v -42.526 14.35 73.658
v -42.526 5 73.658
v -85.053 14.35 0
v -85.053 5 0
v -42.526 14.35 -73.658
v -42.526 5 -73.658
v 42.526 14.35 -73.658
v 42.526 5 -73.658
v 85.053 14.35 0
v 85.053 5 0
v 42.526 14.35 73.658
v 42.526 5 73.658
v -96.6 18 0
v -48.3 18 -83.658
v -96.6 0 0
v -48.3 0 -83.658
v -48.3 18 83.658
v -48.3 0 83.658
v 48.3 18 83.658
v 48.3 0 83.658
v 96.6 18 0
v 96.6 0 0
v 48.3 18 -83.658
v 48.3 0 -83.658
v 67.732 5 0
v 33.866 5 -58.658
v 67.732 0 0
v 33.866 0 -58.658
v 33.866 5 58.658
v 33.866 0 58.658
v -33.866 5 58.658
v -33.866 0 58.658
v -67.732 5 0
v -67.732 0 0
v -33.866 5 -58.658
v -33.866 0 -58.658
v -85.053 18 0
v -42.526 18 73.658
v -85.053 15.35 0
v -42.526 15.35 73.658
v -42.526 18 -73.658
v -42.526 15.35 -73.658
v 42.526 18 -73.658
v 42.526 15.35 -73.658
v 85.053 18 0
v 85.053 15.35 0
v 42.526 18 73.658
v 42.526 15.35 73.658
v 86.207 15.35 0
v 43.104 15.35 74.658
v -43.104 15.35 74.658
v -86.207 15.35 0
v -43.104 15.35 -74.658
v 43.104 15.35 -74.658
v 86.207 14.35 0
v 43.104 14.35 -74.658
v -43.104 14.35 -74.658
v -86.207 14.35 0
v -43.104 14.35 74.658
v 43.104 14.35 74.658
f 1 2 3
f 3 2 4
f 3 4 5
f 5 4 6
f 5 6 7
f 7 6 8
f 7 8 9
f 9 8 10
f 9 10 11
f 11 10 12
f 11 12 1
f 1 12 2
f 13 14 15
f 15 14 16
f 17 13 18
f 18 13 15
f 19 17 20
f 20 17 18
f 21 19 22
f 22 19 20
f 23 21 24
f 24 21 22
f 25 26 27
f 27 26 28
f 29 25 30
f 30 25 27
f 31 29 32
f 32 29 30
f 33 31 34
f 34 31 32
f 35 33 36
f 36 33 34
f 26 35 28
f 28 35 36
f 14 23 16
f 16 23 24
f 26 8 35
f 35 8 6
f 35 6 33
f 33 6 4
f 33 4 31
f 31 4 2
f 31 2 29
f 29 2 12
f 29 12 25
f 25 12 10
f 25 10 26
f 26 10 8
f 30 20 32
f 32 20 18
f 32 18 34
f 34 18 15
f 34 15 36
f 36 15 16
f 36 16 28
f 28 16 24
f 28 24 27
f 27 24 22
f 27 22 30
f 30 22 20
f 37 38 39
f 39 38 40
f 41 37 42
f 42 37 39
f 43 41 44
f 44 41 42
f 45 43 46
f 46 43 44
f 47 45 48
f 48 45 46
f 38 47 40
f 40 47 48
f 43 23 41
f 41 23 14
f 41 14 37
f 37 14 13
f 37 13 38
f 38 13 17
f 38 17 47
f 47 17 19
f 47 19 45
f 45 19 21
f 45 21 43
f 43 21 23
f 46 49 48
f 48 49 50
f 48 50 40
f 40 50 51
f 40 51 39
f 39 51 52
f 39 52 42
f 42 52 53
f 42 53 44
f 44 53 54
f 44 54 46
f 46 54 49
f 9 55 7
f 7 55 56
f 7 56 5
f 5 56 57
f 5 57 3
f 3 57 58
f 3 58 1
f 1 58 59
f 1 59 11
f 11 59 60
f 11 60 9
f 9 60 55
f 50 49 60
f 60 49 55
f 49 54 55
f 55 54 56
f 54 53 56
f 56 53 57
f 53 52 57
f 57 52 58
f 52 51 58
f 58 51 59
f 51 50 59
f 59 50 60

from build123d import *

# Parameters (mm, degrees)
BOSS_EXTRUDE1_DEPTH = 5
BOSS_EXTRUDE2_DEPTH = 18
CUT_EXTRUDE1_DEPTH  = 1


with BuildPart() as part:
    # Sketch1 → Boss-Extrude1 (new body)
    with BuildSketch(Plane(origin=(0, 0, 0), x_dir=(1, 0, 0), z_dir=(0, 1, 0))):
        Polygon((-96.599564284, 0), (-48.299782142, -83.657676664), (48.299782142, -83.657676664), (96.599564284, 0), (48.299782142, 83.657676664), (-48.299782142, 83.657676664), align=None)
        Polygon((-33.866025412, 58.657676664), (33.866025412, 58.657676664), (67.732050824, 0), (33.866025412, -58.657676664), (-33.866025412, -58.657676664), (-67.732050824, 0), align=None, mode=Mode.SUBTRACT)
    extrude(amount=BOSS_EXTRUDE1_DEPTH)

    # Sketch1<3> → Boss-Extrude2 (add)
    with BuildSketch(Plane(origin=(0, 0, 0), x_dir=(1, 0, 0), z_dir=(0, 1, 0))):
        Polygon((-96.599564284, 0), (-48.299782142, -83.657676664), (48.299782142, -83.657676664), (96.599564284, 0), (48.299782142, 83.657676664), (-48.299782142, 83.657676664), align=None)
        Polygon((42.52627945, -73.657676664), (-42.52627945, -73.657676664), (-85.0525589, 0), (-42.52627945, 73.657676664), (42.52627945, 73.657676664), (85.0525589, 0), align=None, mode=Mode.SUBTRACT)
    extrude(amount=BOSS_EXTRUDE2_DEPTH)

    # Sketch2 → Cut-Extrude1 (cut)
    with BuildSketch(Plane(origin=(0, 14.35, 0), x_dir=(1, 0, 0), z_dir=(0, 1, 0))):
        Polygon((86.207259438, 0), (43.103629719, 74.657676664), (-43.103629719, 74.657676664), (-86.207259438, 0), (-43.103629719, -74.657676664), (43.103629719, -74.657676664), align=None)
        Polygon((85.0525589, 0), (42.52627945, 73.657676664), (-42.52627945, 73.657676664), (-85.0525589, 0), (-42.52627945, -73.657676664), (42.52627945, -73.657676664), align=None, mode=Mode.SUBTRACT)
    extrude(amount=CUT_EXTRUDE1_DEPTH, mode=Mode.SUBTRACT)


solid = part.part
